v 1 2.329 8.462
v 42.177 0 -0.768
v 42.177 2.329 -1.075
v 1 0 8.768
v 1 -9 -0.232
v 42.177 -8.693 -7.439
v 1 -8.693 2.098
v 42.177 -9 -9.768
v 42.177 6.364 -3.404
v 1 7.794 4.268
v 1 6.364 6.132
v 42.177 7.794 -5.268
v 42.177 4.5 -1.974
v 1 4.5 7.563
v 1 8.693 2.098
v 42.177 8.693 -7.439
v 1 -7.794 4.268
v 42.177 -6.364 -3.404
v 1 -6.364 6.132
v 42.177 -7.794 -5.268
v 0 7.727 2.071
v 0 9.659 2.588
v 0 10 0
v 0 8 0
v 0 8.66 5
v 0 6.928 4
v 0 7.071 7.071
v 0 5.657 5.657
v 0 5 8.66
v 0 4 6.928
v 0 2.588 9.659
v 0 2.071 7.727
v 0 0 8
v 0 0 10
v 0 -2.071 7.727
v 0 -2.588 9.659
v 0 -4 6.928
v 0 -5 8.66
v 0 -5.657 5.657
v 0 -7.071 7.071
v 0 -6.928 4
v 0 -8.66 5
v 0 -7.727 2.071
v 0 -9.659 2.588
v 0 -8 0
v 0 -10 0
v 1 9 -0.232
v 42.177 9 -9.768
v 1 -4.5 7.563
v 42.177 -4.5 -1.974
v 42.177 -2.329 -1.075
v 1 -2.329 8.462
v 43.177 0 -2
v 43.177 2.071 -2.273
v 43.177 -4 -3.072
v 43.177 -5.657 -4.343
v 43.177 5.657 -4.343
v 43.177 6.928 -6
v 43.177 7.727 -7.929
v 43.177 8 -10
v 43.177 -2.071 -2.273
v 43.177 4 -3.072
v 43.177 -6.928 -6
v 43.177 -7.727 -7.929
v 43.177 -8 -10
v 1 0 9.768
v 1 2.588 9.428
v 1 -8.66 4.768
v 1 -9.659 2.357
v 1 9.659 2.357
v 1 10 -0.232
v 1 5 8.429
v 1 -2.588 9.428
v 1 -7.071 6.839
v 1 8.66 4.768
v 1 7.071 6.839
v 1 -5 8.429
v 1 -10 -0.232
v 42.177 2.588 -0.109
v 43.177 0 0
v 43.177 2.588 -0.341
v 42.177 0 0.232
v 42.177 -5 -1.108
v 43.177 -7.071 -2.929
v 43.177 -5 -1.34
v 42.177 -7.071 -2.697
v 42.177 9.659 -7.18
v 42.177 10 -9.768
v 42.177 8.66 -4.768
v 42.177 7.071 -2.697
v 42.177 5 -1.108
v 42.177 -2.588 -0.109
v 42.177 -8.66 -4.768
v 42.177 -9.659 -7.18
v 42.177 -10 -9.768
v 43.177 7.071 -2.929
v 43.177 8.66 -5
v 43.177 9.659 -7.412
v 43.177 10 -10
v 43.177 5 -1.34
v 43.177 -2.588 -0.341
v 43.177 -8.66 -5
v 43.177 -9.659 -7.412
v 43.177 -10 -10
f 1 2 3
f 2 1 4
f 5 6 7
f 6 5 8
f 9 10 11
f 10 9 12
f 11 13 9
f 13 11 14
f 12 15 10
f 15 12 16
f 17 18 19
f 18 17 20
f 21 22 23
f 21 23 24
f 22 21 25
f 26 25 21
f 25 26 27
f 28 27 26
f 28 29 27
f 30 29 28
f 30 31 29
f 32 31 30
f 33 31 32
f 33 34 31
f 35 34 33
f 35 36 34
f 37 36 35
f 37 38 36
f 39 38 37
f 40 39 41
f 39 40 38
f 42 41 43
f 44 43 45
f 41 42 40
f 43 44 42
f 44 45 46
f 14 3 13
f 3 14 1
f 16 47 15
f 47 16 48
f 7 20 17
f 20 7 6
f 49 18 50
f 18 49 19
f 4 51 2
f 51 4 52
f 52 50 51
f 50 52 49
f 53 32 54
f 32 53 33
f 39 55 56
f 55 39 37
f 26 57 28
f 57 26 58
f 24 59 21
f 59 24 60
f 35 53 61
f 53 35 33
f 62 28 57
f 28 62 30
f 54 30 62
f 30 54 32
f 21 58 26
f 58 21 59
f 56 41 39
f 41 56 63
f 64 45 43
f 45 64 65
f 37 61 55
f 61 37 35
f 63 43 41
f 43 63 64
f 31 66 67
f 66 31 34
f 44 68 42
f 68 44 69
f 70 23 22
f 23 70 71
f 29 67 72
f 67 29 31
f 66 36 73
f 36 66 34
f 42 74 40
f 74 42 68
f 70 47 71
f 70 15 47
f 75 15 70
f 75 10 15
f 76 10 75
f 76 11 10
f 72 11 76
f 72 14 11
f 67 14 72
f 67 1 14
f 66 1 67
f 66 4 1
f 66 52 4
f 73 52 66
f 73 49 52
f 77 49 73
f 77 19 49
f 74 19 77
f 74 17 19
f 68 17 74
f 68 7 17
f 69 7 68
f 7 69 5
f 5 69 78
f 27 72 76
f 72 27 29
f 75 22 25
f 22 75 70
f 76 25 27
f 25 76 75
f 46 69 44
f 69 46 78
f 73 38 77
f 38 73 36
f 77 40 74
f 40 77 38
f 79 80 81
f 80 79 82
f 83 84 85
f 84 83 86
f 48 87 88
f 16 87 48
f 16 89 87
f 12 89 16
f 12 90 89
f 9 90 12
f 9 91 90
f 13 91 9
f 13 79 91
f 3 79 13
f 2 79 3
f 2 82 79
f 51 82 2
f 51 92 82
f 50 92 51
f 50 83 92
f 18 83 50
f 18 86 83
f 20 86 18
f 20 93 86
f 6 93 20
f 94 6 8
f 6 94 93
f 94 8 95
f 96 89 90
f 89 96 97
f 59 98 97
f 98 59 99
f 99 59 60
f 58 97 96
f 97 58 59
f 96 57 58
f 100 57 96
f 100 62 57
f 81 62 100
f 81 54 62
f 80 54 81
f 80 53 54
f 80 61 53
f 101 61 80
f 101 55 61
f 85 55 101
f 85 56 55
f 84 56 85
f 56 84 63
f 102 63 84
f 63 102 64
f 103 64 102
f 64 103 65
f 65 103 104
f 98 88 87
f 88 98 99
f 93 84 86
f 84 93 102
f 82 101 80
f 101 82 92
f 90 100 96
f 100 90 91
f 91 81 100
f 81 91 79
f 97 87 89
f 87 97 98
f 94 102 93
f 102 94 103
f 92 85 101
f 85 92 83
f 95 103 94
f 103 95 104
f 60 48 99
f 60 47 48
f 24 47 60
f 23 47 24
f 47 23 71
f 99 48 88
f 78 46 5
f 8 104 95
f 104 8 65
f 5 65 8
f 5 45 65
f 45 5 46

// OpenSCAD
// file: ../build_environments.scad
// build_environments.scad: modules to build level sections
//

module pool(diameter=10.0, wall_height=2.0, step_width=3.0, connections=[])
{
    difference() {
        union() {
        difference() {
            cylinder(h=0.5,r1=diameter+step_width,r2=diameter+step_width,$fn=48);
            translate([0,0,-0.1])
                cylinder(h=0.7,r1=diameter,r2=diameter,$fn=48);
        }
        difference() {
            cylinder(h=wall_height,r1=diameter+step_width+1.0,r2=diameter+step_width+1.0,$fn=48);
            translate([0,0,-0.1])
                cylinder(h=wall_height+0.2,r1=diameter+step_width,r2=diameter+step_width,$fn=48);
        }
        }
    
        for (c = connections)
        {
            rotate([0,90,0]) {
                angle = atan2(c[1],c[0]);
                rotate([-angle,0,0]) {
                    cylinder(h=diameter+5.0,r1=c[2],r2=c[2],$fn=48);
                }
            }
        }
    }
}

module straight(length=10.0, width=2.0, dy1=0.0, dy2=0.0, dz=0.0)
{
    dims = [0, 0, 0, 0, 0, (dz/length)];
    matrix = [
        [ 1, dims[0], dims[1], 0 ],
        [ dims[2], 1, dims[4], 0 ],
        [ dims[5], dims[3], 1, 0 ],
        [ 0, 0, 0, 1 ]
    ];
    multmatrix(matrix)
    difference() {
        translate([dy1,0,0])
        union() {
            rotate([0,90,0]) {
                difference() {
                    cylinder(h=(length-dy1-dy2),r1=width+1.0,r2=width+1.0,$fn=24);
                    translate([0,0,-0.1])
                        cylinder(h=(length-dy1-dy2+0.2),r1=width,r2=width,$fn=24);
                }
                difference() {
                    cylinder(h=1.0,r1=width+2.0,r2=width+2.0,$fn=24);
                    translate([0,0,-0.1])
                        cylinder(h=1.2,r1=width,r2=width,$fn=24);
                }
                translate([0,0,(length-dy1-dy2)-1.0]) {
                    difference() {
                        cylinder(h=1.0,r1=width+2.0,r2=width+2.0,$fn=24);
                        translate([0,0,-0.1])
                            cylinder(h=1.2,r1=width,r2=width,$fn=24);
                    }
                }
            }
        }
        translate([0,0,-(2*width+4.0)/2])
            cube([3*length,3*length,2*width+4.0],center=true);
    }
}

module curve(p0=[0,0], center=[0,0], dir=1, angle=0.0, width=2.0)
{
    radius = sqrt((p0[0]-center[0])*(p0[0]-center[0]) + (p0[1]-center[1])*(p0[1]-center[1]));
    if (dir == 0) {
        difference() {
            rotate([0,0,-90])
            difference() {
                rotate_extrude(angle = angle, convexity = 10, $fn=32)
                    translate([radius, 0, 0])
                        circle(r = width+1.0,$fn=24);
                rotate([0,0,-1.0])
                    rotate_extrude(angle = angle+2.0, convexity = 10, $fn=32)
                        translate([radius, 0, 0])
                            circle(r = width,$fn=24);
            }
            translate([0,0,-(2*width+4.0)/2])
                cube([5*radius,5*radius,2*width+4.0],center=true);
        }
    }
    else {
        difference() {
            rotate([0,0,90])
            difference() {
                rotate_extrude(angle = -angle, convexity = 10, $fn=32)
                    translate([radius, 0, 0])
                        circle(r = width+1.0,$fn=24);
                rotate([0,0,1.0])
                    rotate_extrude(angle = -angle-2.0, convexity = 10, $fn=32)
                        translate([radius, 0, 0])
                            circle(r = width,$fn=24);
            }
            translate([0,0,-(2*width+4.0)/2])
                cube([5*radius,5*radius,2*width+4.0],center=true);
        }
    }

}

// test pool
//pool(diameter=12.0000, wall_height=3.0000, step_width=3.0000, connections=[[0.0000,-26.0000,2.0000], [23.6074,0.0000,2.0000]]);

// test straight, slope
//straight(length=26.0000, width=2.0000, dy1=11.8322, dy2=6.7082, dz=0.0000);
//straight(length=29.1549, width=12.0000, dy1=0.0000, dy2=0.0000, dz=-15.0000);

// test curve
//curve(p0=[23.6074, 0.0000], center=[23.6074, 5.0000], dir=0, angle=60.1011, width=2.0000);
//curve(p0=[33.6426, 12.4219], center=[37.9771, 9.9295], dir=1, angle=120.4627, width=2.0000);
// main file
use <../build_environments.scad>;
straight(length=43.1774, width=8.0000, dy1=0.0000, dy2=0.0000, dz=-10.0000);
